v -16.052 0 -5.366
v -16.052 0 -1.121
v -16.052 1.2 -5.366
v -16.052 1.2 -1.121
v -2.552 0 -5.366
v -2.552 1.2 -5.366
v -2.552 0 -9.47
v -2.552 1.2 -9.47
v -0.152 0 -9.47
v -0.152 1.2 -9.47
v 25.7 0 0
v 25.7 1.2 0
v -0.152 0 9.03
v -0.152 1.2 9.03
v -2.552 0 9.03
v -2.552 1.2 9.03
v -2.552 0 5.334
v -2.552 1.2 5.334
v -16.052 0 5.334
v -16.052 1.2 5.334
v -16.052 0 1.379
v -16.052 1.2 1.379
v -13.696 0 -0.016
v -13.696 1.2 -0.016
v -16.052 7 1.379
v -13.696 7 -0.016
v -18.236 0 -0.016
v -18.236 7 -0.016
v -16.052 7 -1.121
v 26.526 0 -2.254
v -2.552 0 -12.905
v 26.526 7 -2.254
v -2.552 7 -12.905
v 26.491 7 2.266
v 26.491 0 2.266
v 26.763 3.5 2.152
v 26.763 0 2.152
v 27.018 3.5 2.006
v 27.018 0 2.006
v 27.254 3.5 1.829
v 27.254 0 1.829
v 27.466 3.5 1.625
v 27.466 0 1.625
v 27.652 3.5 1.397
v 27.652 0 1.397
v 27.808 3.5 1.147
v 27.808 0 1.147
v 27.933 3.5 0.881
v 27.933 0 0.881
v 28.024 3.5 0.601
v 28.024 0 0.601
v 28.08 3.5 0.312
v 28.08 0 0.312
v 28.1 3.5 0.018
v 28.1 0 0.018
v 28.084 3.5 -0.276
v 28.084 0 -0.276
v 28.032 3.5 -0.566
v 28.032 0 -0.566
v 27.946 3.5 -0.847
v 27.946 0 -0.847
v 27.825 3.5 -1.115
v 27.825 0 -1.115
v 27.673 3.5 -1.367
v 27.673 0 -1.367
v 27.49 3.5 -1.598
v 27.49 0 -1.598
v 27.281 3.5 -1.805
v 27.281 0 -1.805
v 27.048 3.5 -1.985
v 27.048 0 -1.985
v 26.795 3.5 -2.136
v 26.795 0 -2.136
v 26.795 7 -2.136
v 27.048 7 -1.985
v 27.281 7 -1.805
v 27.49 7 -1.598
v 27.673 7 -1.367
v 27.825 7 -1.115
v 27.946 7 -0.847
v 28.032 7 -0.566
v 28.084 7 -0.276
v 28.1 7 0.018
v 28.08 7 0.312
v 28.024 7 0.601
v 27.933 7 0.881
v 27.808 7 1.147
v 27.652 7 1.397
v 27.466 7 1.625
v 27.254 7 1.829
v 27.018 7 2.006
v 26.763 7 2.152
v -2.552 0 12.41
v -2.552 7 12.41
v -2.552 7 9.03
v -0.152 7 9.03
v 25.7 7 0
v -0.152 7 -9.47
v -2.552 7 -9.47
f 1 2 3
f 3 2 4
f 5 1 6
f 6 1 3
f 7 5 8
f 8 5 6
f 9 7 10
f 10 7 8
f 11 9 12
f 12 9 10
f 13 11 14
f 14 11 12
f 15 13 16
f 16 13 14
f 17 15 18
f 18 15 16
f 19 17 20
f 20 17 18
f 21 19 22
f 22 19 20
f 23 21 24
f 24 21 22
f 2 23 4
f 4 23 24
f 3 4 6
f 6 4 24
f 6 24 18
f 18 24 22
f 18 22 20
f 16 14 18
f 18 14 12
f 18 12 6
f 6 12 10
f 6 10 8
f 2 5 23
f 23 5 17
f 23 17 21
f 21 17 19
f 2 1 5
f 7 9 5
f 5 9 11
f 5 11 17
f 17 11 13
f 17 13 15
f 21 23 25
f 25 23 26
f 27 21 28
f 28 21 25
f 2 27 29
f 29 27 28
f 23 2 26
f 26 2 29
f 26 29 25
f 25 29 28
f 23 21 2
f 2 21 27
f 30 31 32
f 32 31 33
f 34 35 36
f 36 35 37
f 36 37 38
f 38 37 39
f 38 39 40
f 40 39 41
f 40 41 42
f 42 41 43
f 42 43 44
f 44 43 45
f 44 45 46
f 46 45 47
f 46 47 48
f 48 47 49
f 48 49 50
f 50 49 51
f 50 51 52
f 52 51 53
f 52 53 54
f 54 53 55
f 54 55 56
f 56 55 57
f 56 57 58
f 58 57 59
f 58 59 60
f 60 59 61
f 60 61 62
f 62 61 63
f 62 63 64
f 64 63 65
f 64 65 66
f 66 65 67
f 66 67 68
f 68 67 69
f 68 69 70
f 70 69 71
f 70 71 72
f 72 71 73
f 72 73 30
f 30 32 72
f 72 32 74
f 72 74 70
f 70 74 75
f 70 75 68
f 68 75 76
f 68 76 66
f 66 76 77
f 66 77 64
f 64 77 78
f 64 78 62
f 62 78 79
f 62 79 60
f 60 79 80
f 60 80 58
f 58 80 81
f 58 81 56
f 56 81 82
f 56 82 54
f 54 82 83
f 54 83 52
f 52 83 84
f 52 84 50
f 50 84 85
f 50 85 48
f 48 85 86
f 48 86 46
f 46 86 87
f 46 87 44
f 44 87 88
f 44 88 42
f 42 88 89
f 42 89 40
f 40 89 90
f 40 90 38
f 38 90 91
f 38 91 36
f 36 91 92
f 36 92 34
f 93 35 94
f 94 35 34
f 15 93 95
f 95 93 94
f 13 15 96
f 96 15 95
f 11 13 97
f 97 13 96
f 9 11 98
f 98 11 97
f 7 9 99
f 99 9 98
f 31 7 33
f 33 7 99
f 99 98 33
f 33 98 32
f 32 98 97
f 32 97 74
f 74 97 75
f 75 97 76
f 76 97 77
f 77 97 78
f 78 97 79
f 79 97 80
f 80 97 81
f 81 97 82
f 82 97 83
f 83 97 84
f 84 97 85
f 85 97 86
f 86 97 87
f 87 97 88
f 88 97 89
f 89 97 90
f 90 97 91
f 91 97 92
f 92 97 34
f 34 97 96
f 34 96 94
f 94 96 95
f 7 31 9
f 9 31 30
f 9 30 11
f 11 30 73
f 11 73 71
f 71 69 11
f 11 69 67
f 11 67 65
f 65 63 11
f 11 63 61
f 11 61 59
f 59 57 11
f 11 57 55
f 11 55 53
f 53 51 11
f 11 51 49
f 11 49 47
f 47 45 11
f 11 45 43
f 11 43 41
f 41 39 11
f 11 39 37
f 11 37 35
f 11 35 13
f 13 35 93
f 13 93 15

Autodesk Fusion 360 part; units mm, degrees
sketch "Sketch1" plane through (0, 0, 0) normal (0, 1, 0) x (1, 0, 0)
  line L0 (-0.1521, 9.4703) -> (-0.1521, -9.0297)
  line L1 (0, 0) -> (25.7, 0) construction
  line L2 (-0.1521, -9.0297) -> (25.7, 0)
  line L3 (-0.1521, 9.4703) -> (25.7, 0)
  line L4 (-2.5521, 12.9054) -> (26.5255, 2.2536)
  line L5 (-2.5521, -12.4102) -> (26.4914, -2.2658)
  line L6 (-2.5521, 12.9054) -> (-2.5521, -12.4102)
  arc A0 (26.4914, -2.2658) -> (26.5255, 2.2536) centre (25.7, 0) ccw
  line L7 (-0.1521, -9.0297) -> (-2.5521, -9.0297)
  line L8 (-2.5521, -9.0297) -> (-2.5521, 9.4703)
  line L9 (-2.5521, 9.4703) -> (-0.1521, 9.4703)
  line L10 (-0.1521, 9.4703) -> (-0.1521, -9.0297)
  line L11 (-0.1521, -5.334) -> (-16.0521, -5.334)
  line L12 (-16.0521, -5.334) -> (-16.0521, 5.366)
  line L13 (-16.0521, 5.366) -> (-0.1521, 5.366)
  line L14 (-0.1521, 5.366) -> (-0.1521, -5.334)
  line L15 (-18.2359, 0.016) -> (-13.6958, 0.016) construction
  line L16 (-16.0521, -1.3788) -> (-16.0521, 1.1212) construction
  line L17 (-16.0521, -1.3788) -> (-18.2359, 0.016)
  line L18 (-18.2359, 0.016) -> (-16.0521, 1.1212)
  line L19 (-16.0521, 1.1212) -> (-13.6958, 0.016)
  line L20 (-13.6958, 0.016) -> (-16.0521, -1.3788)
  dimension "d1" = 18.5
  dimension "d2" = 25.7
  dimension "d4" = 2.4
  dimension "d5" = 2.4
  dimension "d6" = 18.5
  dimension "d7" = 15.9
  dimension "d8" = 10.7
  dimension "d9" = 2.5
extrude "Extrude2" add sketch "Sketch1" along normal blind 1.2 contours L0 L2 L3 L10 L14 | L0 L6 L8 L9 L10 L13 | L0 L6 L8 L10 L11 L13 L14 | L0 L6 L7 L8 L10 L11 | L6 L8 L11 L12 L13 L19 L20 makes body 1
extrude "Extrude1" add sketch "Sketch1" along normal blind 7 separate body contours L2 L3 L4 L5 L6 A0 L7 L9 | L12 L19 L20 | L12 L17 L18 makes body 2 at (-14.4813, 2.3333, 0.449) makes body 3 at (7.1404, 2.3333, -9.3548)
